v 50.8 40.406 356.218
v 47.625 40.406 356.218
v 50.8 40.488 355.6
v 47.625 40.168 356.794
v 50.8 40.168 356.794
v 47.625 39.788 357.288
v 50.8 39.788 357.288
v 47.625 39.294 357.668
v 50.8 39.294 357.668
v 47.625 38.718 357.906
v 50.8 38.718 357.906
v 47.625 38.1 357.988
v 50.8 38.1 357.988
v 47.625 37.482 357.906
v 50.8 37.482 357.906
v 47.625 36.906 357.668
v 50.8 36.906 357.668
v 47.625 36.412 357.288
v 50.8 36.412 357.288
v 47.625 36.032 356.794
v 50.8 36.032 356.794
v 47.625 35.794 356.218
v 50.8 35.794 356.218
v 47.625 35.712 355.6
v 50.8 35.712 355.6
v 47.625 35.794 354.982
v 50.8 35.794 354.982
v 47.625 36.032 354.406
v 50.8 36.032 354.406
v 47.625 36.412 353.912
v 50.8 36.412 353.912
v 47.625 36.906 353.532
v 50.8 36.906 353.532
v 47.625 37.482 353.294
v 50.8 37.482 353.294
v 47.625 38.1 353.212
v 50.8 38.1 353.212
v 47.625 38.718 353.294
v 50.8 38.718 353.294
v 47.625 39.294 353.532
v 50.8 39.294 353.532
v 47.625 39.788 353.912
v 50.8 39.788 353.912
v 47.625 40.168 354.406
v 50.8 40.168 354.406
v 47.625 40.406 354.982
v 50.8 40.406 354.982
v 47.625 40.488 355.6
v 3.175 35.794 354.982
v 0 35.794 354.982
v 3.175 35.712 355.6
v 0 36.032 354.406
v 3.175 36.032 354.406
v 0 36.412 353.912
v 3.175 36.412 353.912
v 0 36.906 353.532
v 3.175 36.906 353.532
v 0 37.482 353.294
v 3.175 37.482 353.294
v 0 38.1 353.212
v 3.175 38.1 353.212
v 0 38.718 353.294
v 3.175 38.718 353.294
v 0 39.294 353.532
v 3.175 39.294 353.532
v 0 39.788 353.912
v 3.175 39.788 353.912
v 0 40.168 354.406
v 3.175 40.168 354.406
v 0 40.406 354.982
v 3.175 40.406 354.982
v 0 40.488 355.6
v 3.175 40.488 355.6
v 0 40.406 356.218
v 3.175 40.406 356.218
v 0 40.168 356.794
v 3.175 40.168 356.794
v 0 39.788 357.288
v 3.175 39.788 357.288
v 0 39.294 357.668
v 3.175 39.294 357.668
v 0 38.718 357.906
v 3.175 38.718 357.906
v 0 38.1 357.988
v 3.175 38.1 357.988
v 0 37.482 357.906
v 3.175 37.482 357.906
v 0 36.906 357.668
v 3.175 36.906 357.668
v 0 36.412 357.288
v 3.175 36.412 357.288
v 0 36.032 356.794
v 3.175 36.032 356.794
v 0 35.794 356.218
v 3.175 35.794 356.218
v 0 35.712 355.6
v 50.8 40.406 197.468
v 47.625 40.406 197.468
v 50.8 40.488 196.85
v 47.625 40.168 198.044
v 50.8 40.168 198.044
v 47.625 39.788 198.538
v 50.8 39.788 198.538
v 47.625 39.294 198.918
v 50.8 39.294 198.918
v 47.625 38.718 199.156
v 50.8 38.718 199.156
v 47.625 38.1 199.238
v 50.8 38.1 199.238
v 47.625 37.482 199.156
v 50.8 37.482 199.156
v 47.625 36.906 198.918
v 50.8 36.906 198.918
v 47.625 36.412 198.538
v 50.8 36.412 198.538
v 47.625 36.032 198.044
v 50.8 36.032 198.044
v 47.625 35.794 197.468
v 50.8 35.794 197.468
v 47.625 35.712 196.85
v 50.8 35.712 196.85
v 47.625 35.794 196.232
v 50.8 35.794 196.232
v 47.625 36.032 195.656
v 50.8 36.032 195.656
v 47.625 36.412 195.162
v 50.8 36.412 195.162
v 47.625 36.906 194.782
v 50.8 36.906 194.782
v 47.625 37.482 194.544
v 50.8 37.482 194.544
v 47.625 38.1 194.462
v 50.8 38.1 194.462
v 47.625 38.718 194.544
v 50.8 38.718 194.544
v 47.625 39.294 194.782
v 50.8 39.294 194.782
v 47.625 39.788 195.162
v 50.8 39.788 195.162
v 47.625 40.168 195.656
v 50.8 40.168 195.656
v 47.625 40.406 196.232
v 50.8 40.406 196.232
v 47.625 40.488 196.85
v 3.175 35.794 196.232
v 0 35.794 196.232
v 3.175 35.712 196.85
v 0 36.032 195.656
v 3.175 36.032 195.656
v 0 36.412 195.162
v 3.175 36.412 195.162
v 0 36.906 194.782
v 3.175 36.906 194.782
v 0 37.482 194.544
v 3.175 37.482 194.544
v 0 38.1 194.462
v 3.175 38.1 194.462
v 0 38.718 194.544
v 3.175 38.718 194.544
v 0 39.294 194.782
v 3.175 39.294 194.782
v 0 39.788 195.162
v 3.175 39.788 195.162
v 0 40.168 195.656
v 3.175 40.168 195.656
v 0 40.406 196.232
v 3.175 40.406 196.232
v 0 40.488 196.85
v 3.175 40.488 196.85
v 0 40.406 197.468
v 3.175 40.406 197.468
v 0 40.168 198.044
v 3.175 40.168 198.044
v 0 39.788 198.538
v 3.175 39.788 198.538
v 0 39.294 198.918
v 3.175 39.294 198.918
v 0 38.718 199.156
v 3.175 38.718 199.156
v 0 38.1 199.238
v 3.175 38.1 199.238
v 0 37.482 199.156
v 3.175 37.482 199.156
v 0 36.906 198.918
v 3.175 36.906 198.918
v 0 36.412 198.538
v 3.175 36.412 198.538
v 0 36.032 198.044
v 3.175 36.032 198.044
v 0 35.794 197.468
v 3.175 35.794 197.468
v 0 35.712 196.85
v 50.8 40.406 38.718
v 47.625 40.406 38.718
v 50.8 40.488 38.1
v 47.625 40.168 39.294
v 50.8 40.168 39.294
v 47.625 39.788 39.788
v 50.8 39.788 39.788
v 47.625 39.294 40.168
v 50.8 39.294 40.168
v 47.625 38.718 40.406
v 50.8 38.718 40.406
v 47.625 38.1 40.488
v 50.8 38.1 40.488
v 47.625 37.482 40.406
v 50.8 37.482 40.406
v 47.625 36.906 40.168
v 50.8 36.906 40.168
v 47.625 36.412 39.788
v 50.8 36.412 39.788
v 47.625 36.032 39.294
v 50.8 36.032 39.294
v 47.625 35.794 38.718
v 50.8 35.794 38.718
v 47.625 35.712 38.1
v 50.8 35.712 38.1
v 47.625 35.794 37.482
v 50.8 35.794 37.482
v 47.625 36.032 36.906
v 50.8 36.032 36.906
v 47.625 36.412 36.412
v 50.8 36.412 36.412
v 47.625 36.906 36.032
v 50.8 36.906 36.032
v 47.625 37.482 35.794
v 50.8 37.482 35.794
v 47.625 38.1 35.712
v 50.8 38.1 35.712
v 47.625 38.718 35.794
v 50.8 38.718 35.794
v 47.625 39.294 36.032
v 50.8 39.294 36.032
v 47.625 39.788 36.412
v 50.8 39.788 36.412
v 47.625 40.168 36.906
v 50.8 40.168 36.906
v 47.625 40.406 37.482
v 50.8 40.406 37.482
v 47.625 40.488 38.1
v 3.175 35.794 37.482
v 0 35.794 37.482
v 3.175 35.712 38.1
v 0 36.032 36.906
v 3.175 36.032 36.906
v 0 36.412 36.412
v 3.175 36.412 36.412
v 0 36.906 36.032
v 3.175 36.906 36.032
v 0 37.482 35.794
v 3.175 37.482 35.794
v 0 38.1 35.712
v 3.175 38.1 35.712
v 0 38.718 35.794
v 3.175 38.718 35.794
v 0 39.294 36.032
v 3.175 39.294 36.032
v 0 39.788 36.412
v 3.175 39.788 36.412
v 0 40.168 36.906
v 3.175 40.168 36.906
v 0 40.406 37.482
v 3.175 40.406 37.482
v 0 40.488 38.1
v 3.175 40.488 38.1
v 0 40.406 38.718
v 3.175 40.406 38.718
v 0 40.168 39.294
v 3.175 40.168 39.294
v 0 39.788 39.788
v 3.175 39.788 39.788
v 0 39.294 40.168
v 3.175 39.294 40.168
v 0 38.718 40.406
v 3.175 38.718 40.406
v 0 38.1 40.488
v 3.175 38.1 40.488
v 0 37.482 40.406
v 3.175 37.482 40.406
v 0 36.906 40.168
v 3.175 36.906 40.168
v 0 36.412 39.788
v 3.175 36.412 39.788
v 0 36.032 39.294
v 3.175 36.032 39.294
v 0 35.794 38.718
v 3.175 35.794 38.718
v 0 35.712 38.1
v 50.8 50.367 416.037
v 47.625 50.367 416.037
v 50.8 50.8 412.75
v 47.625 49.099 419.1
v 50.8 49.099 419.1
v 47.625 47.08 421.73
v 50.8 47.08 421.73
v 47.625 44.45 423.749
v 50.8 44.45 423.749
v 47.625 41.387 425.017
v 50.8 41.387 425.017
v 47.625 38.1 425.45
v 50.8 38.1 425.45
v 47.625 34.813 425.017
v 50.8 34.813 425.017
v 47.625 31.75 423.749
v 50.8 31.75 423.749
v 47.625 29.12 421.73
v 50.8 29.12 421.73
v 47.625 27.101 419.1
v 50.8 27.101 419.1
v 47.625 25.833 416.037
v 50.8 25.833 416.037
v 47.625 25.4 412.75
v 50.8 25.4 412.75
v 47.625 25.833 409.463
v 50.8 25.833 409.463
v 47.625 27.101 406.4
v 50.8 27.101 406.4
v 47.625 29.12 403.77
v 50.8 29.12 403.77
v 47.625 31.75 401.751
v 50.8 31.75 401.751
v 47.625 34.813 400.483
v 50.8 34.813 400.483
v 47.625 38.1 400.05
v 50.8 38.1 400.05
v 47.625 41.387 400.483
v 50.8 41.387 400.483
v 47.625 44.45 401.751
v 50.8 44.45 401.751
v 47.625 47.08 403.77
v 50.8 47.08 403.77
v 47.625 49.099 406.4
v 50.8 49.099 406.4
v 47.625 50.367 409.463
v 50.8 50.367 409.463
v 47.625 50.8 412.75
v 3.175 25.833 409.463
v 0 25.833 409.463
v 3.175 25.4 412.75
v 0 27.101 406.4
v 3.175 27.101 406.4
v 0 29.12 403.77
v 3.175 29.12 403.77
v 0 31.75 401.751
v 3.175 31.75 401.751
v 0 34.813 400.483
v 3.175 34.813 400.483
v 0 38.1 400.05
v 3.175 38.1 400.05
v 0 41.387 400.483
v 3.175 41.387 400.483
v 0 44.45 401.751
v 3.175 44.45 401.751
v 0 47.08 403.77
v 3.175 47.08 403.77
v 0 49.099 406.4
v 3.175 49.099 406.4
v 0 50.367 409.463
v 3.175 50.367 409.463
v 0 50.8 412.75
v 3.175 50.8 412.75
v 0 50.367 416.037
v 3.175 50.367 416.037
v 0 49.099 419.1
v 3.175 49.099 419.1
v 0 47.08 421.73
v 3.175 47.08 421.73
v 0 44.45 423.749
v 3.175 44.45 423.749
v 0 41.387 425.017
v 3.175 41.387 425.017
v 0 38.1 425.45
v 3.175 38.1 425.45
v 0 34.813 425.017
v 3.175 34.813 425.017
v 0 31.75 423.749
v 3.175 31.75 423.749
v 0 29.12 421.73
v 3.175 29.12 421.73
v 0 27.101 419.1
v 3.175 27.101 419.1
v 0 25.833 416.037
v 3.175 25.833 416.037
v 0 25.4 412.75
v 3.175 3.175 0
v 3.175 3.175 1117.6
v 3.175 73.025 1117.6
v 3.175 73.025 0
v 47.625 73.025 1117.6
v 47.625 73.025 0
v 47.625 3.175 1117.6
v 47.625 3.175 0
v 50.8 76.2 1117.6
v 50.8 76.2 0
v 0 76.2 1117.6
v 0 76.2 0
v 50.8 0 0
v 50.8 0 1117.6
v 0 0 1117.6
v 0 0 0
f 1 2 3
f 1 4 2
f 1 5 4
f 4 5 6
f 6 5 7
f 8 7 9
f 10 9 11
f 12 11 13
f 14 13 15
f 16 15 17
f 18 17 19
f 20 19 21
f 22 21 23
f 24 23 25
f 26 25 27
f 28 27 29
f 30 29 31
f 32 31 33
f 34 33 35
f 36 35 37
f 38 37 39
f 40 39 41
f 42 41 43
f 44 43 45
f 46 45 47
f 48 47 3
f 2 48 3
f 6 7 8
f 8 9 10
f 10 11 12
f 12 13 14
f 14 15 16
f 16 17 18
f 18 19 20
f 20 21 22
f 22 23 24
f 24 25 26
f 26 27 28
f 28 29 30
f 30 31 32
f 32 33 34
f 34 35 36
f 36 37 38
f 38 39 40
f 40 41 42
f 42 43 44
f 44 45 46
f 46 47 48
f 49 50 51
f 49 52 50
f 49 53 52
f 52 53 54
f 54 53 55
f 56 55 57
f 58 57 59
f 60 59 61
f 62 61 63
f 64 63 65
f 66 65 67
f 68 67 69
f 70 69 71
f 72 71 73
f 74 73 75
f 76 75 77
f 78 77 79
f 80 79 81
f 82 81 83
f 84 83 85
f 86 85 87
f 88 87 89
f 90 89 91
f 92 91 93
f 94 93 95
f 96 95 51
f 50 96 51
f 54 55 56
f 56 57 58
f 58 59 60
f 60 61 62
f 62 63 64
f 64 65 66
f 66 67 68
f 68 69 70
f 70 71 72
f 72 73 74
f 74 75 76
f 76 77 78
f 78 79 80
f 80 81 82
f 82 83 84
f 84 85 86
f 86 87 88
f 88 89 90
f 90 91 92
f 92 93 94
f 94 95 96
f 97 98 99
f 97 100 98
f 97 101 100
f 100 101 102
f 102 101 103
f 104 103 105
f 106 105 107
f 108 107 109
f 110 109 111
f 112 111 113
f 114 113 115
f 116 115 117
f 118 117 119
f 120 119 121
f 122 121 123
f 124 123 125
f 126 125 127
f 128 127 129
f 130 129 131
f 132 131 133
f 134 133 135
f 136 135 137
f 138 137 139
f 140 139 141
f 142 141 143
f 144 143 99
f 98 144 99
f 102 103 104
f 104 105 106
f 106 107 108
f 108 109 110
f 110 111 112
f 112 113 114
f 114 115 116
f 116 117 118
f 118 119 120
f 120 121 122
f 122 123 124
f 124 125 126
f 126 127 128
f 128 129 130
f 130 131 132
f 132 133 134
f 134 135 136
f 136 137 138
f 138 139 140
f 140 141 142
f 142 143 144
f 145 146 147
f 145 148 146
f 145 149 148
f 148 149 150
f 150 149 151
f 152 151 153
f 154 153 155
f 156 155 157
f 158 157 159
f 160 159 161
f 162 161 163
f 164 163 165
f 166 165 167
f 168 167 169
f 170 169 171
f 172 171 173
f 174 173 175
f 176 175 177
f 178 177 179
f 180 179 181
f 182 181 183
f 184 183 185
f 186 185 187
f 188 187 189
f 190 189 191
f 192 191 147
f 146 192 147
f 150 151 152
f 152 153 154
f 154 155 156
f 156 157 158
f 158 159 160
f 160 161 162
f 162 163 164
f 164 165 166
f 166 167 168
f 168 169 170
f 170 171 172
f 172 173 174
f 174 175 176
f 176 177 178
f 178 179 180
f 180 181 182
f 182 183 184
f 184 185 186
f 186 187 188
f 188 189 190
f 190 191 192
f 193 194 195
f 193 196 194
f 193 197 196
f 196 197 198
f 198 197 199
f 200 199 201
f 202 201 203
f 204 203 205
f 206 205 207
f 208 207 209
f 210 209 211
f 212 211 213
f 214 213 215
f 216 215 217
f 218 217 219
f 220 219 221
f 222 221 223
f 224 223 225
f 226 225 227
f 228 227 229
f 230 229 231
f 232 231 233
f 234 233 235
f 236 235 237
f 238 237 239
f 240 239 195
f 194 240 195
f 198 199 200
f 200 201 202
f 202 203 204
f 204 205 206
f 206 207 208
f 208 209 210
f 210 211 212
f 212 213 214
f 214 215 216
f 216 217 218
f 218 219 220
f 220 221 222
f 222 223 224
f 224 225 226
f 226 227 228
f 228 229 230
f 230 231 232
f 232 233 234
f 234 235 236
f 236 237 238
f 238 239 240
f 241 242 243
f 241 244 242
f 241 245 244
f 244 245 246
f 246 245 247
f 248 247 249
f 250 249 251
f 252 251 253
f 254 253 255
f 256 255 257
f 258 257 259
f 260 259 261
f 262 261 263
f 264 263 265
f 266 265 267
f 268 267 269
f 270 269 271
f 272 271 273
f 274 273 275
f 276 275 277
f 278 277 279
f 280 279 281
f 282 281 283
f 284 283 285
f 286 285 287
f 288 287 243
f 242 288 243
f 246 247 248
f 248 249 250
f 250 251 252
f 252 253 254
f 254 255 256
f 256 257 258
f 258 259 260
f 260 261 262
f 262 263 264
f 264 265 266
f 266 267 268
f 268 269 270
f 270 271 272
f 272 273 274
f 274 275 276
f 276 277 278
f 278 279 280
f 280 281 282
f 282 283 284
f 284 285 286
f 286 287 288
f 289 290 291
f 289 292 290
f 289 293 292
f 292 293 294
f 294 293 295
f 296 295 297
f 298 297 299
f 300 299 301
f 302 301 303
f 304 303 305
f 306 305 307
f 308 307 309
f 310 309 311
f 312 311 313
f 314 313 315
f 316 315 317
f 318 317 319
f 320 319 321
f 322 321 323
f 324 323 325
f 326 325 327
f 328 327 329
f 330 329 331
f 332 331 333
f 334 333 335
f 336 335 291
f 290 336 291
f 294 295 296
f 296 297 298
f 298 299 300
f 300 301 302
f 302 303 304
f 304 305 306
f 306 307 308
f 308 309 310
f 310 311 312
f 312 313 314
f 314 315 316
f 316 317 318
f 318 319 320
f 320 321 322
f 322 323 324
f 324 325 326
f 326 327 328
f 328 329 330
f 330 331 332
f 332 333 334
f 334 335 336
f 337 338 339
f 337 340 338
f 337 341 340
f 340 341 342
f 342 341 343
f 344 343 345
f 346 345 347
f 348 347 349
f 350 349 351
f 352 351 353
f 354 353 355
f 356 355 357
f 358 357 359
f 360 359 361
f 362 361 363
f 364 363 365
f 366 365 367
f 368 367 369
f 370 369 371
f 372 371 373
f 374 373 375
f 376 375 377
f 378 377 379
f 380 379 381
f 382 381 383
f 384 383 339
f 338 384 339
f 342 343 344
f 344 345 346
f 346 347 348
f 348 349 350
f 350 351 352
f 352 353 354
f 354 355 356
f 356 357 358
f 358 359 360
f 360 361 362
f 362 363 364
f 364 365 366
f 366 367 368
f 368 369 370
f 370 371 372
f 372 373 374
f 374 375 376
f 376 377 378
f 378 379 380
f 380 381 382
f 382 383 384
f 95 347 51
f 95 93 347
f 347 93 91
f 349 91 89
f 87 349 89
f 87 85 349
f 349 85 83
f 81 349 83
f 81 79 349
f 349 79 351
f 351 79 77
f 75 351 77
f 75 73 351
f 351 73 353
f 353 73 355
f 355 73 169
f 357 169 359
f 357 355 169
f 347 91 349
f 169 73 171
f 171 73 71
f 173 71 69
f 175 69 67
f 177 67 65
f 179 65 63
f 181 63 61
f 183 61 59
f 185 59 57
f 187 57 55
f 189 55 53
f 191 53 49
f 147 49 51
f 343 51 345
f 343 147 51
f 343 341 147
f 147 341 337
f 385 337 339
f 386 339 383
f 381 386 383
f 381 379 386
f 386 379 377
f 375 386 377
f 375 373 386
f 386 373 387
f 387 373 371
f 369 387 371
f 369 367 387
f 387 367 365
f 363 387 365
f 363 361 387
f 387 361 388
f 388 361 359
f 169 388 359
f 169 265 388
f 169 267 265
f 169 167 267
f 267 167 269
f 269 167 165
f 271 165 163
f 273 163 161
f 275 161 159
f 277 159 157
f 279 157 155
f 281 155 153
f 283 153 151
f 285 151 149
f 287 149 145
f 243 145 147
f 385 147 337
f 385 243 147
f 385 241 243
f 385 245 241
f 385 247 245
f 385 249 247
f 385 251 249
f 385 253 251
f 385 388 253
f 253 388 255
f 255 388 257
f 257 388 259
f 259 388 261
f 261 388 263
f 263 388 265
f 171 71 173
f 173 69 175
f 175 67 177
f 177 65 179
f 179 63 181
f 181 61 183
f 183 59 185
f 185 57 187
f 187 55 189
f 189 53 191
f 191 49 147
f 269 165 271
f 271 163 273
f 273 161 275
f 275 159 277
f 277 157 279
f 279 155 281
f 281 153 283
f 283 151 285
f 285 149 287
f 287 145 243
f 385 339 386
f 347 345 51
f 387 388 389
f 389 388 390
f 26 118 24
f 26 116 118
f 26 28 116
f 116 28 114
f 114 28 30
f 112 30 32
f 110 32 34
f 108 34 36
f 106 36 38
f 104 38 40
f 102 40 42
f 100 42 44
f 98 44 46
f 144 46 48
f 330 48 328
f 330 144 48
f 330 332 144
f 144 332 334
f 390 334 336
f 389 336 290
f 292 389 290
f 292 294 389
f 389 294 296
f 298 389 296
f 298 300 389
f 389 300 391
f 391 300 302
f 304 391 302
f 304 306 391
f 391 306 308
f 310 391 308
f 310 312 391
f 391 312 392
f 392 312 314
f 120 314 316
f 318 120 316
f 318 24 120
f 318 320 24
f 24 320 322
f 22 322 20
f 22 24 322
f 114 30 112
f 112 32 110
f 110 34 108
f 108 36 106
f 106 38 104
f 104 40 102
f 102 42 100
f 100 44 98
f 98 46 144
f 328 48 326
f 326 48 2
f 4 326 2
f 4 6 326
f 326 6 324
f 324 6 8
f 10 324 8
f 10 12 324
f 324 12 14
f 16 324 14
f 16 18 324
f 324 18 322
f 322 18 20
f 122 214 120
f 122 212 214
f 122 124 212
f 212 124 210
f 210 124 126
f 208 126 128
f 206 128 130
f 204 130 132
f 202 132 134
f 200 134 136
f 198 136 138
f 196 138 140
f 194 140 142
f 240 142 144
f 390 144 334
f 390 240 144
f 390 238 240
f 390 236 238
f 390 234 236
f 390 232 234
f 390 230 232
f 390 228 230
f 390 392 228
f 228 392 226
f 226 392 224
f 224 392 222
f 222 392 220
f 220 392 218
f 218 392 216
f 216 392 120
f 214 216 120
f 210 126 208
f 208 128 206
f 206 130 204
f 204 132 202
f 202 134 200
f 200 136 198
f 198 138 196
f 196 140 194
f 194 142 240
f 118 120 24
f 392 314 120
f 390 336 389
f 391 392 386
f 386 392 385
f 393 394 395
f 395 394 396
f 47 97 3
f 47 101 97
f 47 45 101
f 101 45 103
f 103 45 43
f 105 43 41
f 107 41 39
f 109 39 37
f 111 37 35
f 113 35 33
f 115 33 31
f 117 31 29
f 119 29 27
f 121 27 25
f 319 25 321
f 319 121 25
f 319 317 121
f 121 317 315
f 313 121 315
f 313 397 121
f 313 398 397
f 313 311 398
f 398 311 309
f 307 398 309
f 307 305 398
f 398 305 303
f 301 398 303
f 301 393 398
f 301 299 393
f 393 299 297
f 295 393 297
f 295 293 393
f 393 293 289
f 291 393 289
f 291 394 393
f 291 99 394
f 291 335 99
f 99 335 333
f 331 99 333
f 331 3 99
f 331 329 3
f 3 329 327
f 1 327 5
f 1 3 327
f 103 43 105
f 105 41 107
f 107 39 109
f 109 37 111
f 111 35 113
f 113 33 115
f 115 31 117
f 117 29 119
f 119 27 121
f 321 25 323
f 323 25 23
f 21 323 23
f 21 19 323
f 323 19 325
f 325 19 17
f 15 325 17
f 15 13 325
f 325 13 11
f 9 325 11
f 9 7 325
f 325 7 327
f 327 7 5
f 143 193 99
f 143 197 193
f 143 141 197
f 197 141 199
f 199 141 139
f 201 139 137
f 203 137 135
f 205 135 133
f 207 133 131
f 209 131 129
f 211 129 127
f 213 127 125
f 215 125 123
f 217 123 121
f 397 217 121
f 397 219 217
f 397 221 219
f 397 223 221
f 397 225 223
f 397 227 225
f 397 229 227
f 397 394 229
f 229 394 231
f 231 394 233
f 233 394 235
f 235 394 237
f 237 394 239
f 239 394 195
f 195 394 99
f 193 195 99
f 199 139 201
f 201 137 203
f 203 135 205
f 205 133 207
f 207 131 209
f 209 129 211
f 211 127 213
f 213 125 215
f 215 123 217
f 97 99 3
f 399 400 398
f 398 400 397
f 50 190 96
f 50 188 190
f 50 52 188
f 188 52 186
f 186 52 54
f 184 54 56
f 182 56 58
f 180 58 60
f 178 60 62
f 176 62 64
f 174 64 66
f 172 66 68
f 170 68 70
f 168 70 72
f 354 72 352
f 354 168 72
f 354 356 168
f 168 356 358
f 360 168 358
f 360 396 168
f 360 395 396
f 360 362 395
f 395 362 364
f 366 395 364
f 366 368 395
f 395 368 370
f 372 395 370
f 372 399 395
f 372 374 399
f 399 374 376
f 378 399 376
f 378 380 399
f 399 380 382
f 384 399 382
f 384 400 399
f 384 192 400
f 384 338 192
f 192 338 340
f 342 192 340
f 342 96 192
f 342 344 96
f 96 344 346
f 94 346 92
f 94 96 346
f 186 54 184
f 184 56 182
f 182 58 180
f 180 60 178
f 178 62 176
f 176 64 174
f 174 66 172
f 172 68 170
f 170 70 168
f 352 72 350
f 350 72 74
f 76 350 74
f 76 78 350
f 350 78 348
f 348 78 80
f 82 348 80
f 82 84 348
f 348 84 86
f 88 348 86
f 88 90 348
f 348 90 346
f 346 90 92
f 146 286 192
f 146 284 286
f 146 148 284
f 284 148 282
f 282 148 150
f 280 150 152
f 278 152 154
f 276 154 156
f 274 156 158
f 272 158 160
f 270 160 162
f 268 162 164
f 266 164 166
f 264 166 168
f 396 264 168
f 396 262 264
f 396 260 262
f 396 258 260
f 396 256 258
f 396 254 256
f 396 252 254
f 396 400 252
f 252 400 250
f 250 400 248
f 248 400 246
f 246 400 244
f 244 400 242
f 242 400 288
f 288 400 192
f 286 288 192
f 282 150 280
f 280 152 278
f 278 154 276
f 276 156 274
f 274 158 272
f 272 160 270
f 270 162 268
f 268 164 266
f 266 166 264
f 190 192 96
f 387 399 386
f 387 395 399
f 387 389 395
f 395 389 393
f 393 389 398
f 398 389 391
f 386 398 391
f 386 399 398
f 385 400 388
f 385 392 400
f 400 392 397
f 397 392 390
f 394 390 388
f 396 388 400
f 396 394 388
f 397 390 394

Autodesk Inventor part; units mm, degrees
ref_plane "YZ Plane" through (0, 0, 0) normal (1, 0, 0) x (0, 1, 0)
ref_plane "XZ Plane" through (0, 0, 0) normal (0, 1, 0) x (-1, 0, 0)
ref_plane "XY Plane" through (0, 0, 0) normal (0, 0, 1) x (1, 0, 0)
sketch "Sketch1" plane through (0, 0, 0) normal (0, 0, 1) x (1, 0, 0)
  line L0 (0, 0) -> (50.8, 0)
  line L1 (50.8, 0) -> (50.8, 76.2)
  line L2 (50.8, 76.2) -> (0, 76.2)
  line L3 (0, 76.2) -> (0, 0)
  line L4 (3.175, 73.025) -> (47.625, 73.025)
  line L5 (47.625, 73.025) -> (47.625, 3.175)
  line L6 (47.625, 3.175) -> (3.175, 3.175)
  line L7 (3.175, 3.175) -> (3.175, 73.025)
  dimension "d13" = 3.175
  dimension "d14" = 50.8
  dimension "d15" = 76.2
  dimension "d37" = 3.175
  dimension "d38" = 3.175
  dimension "d39" = 3.175
extrude "Extrusion1" add sketch "Sketch1" along normal blind 1117.6
hole "Hole1" at (50.8, 38.1, 412.75) direction (-1, 0, 0) diameter 25.4 end through all
hole "Hole2" at (50.8, 38.1, 38.1) direction (-1, 0, 0) diameter 4.7752 end through all
pattern_linear "Rectangular Pattern1" count 3 spacing 158.75 along (0, 0, 1) of "Hole2"
equation "\"d37\" = d13"
equation "\"d38\" = d13"
equation "\"d39\" = d13"
properties part number "GE-12019-02" material "Aluminum-6061"
